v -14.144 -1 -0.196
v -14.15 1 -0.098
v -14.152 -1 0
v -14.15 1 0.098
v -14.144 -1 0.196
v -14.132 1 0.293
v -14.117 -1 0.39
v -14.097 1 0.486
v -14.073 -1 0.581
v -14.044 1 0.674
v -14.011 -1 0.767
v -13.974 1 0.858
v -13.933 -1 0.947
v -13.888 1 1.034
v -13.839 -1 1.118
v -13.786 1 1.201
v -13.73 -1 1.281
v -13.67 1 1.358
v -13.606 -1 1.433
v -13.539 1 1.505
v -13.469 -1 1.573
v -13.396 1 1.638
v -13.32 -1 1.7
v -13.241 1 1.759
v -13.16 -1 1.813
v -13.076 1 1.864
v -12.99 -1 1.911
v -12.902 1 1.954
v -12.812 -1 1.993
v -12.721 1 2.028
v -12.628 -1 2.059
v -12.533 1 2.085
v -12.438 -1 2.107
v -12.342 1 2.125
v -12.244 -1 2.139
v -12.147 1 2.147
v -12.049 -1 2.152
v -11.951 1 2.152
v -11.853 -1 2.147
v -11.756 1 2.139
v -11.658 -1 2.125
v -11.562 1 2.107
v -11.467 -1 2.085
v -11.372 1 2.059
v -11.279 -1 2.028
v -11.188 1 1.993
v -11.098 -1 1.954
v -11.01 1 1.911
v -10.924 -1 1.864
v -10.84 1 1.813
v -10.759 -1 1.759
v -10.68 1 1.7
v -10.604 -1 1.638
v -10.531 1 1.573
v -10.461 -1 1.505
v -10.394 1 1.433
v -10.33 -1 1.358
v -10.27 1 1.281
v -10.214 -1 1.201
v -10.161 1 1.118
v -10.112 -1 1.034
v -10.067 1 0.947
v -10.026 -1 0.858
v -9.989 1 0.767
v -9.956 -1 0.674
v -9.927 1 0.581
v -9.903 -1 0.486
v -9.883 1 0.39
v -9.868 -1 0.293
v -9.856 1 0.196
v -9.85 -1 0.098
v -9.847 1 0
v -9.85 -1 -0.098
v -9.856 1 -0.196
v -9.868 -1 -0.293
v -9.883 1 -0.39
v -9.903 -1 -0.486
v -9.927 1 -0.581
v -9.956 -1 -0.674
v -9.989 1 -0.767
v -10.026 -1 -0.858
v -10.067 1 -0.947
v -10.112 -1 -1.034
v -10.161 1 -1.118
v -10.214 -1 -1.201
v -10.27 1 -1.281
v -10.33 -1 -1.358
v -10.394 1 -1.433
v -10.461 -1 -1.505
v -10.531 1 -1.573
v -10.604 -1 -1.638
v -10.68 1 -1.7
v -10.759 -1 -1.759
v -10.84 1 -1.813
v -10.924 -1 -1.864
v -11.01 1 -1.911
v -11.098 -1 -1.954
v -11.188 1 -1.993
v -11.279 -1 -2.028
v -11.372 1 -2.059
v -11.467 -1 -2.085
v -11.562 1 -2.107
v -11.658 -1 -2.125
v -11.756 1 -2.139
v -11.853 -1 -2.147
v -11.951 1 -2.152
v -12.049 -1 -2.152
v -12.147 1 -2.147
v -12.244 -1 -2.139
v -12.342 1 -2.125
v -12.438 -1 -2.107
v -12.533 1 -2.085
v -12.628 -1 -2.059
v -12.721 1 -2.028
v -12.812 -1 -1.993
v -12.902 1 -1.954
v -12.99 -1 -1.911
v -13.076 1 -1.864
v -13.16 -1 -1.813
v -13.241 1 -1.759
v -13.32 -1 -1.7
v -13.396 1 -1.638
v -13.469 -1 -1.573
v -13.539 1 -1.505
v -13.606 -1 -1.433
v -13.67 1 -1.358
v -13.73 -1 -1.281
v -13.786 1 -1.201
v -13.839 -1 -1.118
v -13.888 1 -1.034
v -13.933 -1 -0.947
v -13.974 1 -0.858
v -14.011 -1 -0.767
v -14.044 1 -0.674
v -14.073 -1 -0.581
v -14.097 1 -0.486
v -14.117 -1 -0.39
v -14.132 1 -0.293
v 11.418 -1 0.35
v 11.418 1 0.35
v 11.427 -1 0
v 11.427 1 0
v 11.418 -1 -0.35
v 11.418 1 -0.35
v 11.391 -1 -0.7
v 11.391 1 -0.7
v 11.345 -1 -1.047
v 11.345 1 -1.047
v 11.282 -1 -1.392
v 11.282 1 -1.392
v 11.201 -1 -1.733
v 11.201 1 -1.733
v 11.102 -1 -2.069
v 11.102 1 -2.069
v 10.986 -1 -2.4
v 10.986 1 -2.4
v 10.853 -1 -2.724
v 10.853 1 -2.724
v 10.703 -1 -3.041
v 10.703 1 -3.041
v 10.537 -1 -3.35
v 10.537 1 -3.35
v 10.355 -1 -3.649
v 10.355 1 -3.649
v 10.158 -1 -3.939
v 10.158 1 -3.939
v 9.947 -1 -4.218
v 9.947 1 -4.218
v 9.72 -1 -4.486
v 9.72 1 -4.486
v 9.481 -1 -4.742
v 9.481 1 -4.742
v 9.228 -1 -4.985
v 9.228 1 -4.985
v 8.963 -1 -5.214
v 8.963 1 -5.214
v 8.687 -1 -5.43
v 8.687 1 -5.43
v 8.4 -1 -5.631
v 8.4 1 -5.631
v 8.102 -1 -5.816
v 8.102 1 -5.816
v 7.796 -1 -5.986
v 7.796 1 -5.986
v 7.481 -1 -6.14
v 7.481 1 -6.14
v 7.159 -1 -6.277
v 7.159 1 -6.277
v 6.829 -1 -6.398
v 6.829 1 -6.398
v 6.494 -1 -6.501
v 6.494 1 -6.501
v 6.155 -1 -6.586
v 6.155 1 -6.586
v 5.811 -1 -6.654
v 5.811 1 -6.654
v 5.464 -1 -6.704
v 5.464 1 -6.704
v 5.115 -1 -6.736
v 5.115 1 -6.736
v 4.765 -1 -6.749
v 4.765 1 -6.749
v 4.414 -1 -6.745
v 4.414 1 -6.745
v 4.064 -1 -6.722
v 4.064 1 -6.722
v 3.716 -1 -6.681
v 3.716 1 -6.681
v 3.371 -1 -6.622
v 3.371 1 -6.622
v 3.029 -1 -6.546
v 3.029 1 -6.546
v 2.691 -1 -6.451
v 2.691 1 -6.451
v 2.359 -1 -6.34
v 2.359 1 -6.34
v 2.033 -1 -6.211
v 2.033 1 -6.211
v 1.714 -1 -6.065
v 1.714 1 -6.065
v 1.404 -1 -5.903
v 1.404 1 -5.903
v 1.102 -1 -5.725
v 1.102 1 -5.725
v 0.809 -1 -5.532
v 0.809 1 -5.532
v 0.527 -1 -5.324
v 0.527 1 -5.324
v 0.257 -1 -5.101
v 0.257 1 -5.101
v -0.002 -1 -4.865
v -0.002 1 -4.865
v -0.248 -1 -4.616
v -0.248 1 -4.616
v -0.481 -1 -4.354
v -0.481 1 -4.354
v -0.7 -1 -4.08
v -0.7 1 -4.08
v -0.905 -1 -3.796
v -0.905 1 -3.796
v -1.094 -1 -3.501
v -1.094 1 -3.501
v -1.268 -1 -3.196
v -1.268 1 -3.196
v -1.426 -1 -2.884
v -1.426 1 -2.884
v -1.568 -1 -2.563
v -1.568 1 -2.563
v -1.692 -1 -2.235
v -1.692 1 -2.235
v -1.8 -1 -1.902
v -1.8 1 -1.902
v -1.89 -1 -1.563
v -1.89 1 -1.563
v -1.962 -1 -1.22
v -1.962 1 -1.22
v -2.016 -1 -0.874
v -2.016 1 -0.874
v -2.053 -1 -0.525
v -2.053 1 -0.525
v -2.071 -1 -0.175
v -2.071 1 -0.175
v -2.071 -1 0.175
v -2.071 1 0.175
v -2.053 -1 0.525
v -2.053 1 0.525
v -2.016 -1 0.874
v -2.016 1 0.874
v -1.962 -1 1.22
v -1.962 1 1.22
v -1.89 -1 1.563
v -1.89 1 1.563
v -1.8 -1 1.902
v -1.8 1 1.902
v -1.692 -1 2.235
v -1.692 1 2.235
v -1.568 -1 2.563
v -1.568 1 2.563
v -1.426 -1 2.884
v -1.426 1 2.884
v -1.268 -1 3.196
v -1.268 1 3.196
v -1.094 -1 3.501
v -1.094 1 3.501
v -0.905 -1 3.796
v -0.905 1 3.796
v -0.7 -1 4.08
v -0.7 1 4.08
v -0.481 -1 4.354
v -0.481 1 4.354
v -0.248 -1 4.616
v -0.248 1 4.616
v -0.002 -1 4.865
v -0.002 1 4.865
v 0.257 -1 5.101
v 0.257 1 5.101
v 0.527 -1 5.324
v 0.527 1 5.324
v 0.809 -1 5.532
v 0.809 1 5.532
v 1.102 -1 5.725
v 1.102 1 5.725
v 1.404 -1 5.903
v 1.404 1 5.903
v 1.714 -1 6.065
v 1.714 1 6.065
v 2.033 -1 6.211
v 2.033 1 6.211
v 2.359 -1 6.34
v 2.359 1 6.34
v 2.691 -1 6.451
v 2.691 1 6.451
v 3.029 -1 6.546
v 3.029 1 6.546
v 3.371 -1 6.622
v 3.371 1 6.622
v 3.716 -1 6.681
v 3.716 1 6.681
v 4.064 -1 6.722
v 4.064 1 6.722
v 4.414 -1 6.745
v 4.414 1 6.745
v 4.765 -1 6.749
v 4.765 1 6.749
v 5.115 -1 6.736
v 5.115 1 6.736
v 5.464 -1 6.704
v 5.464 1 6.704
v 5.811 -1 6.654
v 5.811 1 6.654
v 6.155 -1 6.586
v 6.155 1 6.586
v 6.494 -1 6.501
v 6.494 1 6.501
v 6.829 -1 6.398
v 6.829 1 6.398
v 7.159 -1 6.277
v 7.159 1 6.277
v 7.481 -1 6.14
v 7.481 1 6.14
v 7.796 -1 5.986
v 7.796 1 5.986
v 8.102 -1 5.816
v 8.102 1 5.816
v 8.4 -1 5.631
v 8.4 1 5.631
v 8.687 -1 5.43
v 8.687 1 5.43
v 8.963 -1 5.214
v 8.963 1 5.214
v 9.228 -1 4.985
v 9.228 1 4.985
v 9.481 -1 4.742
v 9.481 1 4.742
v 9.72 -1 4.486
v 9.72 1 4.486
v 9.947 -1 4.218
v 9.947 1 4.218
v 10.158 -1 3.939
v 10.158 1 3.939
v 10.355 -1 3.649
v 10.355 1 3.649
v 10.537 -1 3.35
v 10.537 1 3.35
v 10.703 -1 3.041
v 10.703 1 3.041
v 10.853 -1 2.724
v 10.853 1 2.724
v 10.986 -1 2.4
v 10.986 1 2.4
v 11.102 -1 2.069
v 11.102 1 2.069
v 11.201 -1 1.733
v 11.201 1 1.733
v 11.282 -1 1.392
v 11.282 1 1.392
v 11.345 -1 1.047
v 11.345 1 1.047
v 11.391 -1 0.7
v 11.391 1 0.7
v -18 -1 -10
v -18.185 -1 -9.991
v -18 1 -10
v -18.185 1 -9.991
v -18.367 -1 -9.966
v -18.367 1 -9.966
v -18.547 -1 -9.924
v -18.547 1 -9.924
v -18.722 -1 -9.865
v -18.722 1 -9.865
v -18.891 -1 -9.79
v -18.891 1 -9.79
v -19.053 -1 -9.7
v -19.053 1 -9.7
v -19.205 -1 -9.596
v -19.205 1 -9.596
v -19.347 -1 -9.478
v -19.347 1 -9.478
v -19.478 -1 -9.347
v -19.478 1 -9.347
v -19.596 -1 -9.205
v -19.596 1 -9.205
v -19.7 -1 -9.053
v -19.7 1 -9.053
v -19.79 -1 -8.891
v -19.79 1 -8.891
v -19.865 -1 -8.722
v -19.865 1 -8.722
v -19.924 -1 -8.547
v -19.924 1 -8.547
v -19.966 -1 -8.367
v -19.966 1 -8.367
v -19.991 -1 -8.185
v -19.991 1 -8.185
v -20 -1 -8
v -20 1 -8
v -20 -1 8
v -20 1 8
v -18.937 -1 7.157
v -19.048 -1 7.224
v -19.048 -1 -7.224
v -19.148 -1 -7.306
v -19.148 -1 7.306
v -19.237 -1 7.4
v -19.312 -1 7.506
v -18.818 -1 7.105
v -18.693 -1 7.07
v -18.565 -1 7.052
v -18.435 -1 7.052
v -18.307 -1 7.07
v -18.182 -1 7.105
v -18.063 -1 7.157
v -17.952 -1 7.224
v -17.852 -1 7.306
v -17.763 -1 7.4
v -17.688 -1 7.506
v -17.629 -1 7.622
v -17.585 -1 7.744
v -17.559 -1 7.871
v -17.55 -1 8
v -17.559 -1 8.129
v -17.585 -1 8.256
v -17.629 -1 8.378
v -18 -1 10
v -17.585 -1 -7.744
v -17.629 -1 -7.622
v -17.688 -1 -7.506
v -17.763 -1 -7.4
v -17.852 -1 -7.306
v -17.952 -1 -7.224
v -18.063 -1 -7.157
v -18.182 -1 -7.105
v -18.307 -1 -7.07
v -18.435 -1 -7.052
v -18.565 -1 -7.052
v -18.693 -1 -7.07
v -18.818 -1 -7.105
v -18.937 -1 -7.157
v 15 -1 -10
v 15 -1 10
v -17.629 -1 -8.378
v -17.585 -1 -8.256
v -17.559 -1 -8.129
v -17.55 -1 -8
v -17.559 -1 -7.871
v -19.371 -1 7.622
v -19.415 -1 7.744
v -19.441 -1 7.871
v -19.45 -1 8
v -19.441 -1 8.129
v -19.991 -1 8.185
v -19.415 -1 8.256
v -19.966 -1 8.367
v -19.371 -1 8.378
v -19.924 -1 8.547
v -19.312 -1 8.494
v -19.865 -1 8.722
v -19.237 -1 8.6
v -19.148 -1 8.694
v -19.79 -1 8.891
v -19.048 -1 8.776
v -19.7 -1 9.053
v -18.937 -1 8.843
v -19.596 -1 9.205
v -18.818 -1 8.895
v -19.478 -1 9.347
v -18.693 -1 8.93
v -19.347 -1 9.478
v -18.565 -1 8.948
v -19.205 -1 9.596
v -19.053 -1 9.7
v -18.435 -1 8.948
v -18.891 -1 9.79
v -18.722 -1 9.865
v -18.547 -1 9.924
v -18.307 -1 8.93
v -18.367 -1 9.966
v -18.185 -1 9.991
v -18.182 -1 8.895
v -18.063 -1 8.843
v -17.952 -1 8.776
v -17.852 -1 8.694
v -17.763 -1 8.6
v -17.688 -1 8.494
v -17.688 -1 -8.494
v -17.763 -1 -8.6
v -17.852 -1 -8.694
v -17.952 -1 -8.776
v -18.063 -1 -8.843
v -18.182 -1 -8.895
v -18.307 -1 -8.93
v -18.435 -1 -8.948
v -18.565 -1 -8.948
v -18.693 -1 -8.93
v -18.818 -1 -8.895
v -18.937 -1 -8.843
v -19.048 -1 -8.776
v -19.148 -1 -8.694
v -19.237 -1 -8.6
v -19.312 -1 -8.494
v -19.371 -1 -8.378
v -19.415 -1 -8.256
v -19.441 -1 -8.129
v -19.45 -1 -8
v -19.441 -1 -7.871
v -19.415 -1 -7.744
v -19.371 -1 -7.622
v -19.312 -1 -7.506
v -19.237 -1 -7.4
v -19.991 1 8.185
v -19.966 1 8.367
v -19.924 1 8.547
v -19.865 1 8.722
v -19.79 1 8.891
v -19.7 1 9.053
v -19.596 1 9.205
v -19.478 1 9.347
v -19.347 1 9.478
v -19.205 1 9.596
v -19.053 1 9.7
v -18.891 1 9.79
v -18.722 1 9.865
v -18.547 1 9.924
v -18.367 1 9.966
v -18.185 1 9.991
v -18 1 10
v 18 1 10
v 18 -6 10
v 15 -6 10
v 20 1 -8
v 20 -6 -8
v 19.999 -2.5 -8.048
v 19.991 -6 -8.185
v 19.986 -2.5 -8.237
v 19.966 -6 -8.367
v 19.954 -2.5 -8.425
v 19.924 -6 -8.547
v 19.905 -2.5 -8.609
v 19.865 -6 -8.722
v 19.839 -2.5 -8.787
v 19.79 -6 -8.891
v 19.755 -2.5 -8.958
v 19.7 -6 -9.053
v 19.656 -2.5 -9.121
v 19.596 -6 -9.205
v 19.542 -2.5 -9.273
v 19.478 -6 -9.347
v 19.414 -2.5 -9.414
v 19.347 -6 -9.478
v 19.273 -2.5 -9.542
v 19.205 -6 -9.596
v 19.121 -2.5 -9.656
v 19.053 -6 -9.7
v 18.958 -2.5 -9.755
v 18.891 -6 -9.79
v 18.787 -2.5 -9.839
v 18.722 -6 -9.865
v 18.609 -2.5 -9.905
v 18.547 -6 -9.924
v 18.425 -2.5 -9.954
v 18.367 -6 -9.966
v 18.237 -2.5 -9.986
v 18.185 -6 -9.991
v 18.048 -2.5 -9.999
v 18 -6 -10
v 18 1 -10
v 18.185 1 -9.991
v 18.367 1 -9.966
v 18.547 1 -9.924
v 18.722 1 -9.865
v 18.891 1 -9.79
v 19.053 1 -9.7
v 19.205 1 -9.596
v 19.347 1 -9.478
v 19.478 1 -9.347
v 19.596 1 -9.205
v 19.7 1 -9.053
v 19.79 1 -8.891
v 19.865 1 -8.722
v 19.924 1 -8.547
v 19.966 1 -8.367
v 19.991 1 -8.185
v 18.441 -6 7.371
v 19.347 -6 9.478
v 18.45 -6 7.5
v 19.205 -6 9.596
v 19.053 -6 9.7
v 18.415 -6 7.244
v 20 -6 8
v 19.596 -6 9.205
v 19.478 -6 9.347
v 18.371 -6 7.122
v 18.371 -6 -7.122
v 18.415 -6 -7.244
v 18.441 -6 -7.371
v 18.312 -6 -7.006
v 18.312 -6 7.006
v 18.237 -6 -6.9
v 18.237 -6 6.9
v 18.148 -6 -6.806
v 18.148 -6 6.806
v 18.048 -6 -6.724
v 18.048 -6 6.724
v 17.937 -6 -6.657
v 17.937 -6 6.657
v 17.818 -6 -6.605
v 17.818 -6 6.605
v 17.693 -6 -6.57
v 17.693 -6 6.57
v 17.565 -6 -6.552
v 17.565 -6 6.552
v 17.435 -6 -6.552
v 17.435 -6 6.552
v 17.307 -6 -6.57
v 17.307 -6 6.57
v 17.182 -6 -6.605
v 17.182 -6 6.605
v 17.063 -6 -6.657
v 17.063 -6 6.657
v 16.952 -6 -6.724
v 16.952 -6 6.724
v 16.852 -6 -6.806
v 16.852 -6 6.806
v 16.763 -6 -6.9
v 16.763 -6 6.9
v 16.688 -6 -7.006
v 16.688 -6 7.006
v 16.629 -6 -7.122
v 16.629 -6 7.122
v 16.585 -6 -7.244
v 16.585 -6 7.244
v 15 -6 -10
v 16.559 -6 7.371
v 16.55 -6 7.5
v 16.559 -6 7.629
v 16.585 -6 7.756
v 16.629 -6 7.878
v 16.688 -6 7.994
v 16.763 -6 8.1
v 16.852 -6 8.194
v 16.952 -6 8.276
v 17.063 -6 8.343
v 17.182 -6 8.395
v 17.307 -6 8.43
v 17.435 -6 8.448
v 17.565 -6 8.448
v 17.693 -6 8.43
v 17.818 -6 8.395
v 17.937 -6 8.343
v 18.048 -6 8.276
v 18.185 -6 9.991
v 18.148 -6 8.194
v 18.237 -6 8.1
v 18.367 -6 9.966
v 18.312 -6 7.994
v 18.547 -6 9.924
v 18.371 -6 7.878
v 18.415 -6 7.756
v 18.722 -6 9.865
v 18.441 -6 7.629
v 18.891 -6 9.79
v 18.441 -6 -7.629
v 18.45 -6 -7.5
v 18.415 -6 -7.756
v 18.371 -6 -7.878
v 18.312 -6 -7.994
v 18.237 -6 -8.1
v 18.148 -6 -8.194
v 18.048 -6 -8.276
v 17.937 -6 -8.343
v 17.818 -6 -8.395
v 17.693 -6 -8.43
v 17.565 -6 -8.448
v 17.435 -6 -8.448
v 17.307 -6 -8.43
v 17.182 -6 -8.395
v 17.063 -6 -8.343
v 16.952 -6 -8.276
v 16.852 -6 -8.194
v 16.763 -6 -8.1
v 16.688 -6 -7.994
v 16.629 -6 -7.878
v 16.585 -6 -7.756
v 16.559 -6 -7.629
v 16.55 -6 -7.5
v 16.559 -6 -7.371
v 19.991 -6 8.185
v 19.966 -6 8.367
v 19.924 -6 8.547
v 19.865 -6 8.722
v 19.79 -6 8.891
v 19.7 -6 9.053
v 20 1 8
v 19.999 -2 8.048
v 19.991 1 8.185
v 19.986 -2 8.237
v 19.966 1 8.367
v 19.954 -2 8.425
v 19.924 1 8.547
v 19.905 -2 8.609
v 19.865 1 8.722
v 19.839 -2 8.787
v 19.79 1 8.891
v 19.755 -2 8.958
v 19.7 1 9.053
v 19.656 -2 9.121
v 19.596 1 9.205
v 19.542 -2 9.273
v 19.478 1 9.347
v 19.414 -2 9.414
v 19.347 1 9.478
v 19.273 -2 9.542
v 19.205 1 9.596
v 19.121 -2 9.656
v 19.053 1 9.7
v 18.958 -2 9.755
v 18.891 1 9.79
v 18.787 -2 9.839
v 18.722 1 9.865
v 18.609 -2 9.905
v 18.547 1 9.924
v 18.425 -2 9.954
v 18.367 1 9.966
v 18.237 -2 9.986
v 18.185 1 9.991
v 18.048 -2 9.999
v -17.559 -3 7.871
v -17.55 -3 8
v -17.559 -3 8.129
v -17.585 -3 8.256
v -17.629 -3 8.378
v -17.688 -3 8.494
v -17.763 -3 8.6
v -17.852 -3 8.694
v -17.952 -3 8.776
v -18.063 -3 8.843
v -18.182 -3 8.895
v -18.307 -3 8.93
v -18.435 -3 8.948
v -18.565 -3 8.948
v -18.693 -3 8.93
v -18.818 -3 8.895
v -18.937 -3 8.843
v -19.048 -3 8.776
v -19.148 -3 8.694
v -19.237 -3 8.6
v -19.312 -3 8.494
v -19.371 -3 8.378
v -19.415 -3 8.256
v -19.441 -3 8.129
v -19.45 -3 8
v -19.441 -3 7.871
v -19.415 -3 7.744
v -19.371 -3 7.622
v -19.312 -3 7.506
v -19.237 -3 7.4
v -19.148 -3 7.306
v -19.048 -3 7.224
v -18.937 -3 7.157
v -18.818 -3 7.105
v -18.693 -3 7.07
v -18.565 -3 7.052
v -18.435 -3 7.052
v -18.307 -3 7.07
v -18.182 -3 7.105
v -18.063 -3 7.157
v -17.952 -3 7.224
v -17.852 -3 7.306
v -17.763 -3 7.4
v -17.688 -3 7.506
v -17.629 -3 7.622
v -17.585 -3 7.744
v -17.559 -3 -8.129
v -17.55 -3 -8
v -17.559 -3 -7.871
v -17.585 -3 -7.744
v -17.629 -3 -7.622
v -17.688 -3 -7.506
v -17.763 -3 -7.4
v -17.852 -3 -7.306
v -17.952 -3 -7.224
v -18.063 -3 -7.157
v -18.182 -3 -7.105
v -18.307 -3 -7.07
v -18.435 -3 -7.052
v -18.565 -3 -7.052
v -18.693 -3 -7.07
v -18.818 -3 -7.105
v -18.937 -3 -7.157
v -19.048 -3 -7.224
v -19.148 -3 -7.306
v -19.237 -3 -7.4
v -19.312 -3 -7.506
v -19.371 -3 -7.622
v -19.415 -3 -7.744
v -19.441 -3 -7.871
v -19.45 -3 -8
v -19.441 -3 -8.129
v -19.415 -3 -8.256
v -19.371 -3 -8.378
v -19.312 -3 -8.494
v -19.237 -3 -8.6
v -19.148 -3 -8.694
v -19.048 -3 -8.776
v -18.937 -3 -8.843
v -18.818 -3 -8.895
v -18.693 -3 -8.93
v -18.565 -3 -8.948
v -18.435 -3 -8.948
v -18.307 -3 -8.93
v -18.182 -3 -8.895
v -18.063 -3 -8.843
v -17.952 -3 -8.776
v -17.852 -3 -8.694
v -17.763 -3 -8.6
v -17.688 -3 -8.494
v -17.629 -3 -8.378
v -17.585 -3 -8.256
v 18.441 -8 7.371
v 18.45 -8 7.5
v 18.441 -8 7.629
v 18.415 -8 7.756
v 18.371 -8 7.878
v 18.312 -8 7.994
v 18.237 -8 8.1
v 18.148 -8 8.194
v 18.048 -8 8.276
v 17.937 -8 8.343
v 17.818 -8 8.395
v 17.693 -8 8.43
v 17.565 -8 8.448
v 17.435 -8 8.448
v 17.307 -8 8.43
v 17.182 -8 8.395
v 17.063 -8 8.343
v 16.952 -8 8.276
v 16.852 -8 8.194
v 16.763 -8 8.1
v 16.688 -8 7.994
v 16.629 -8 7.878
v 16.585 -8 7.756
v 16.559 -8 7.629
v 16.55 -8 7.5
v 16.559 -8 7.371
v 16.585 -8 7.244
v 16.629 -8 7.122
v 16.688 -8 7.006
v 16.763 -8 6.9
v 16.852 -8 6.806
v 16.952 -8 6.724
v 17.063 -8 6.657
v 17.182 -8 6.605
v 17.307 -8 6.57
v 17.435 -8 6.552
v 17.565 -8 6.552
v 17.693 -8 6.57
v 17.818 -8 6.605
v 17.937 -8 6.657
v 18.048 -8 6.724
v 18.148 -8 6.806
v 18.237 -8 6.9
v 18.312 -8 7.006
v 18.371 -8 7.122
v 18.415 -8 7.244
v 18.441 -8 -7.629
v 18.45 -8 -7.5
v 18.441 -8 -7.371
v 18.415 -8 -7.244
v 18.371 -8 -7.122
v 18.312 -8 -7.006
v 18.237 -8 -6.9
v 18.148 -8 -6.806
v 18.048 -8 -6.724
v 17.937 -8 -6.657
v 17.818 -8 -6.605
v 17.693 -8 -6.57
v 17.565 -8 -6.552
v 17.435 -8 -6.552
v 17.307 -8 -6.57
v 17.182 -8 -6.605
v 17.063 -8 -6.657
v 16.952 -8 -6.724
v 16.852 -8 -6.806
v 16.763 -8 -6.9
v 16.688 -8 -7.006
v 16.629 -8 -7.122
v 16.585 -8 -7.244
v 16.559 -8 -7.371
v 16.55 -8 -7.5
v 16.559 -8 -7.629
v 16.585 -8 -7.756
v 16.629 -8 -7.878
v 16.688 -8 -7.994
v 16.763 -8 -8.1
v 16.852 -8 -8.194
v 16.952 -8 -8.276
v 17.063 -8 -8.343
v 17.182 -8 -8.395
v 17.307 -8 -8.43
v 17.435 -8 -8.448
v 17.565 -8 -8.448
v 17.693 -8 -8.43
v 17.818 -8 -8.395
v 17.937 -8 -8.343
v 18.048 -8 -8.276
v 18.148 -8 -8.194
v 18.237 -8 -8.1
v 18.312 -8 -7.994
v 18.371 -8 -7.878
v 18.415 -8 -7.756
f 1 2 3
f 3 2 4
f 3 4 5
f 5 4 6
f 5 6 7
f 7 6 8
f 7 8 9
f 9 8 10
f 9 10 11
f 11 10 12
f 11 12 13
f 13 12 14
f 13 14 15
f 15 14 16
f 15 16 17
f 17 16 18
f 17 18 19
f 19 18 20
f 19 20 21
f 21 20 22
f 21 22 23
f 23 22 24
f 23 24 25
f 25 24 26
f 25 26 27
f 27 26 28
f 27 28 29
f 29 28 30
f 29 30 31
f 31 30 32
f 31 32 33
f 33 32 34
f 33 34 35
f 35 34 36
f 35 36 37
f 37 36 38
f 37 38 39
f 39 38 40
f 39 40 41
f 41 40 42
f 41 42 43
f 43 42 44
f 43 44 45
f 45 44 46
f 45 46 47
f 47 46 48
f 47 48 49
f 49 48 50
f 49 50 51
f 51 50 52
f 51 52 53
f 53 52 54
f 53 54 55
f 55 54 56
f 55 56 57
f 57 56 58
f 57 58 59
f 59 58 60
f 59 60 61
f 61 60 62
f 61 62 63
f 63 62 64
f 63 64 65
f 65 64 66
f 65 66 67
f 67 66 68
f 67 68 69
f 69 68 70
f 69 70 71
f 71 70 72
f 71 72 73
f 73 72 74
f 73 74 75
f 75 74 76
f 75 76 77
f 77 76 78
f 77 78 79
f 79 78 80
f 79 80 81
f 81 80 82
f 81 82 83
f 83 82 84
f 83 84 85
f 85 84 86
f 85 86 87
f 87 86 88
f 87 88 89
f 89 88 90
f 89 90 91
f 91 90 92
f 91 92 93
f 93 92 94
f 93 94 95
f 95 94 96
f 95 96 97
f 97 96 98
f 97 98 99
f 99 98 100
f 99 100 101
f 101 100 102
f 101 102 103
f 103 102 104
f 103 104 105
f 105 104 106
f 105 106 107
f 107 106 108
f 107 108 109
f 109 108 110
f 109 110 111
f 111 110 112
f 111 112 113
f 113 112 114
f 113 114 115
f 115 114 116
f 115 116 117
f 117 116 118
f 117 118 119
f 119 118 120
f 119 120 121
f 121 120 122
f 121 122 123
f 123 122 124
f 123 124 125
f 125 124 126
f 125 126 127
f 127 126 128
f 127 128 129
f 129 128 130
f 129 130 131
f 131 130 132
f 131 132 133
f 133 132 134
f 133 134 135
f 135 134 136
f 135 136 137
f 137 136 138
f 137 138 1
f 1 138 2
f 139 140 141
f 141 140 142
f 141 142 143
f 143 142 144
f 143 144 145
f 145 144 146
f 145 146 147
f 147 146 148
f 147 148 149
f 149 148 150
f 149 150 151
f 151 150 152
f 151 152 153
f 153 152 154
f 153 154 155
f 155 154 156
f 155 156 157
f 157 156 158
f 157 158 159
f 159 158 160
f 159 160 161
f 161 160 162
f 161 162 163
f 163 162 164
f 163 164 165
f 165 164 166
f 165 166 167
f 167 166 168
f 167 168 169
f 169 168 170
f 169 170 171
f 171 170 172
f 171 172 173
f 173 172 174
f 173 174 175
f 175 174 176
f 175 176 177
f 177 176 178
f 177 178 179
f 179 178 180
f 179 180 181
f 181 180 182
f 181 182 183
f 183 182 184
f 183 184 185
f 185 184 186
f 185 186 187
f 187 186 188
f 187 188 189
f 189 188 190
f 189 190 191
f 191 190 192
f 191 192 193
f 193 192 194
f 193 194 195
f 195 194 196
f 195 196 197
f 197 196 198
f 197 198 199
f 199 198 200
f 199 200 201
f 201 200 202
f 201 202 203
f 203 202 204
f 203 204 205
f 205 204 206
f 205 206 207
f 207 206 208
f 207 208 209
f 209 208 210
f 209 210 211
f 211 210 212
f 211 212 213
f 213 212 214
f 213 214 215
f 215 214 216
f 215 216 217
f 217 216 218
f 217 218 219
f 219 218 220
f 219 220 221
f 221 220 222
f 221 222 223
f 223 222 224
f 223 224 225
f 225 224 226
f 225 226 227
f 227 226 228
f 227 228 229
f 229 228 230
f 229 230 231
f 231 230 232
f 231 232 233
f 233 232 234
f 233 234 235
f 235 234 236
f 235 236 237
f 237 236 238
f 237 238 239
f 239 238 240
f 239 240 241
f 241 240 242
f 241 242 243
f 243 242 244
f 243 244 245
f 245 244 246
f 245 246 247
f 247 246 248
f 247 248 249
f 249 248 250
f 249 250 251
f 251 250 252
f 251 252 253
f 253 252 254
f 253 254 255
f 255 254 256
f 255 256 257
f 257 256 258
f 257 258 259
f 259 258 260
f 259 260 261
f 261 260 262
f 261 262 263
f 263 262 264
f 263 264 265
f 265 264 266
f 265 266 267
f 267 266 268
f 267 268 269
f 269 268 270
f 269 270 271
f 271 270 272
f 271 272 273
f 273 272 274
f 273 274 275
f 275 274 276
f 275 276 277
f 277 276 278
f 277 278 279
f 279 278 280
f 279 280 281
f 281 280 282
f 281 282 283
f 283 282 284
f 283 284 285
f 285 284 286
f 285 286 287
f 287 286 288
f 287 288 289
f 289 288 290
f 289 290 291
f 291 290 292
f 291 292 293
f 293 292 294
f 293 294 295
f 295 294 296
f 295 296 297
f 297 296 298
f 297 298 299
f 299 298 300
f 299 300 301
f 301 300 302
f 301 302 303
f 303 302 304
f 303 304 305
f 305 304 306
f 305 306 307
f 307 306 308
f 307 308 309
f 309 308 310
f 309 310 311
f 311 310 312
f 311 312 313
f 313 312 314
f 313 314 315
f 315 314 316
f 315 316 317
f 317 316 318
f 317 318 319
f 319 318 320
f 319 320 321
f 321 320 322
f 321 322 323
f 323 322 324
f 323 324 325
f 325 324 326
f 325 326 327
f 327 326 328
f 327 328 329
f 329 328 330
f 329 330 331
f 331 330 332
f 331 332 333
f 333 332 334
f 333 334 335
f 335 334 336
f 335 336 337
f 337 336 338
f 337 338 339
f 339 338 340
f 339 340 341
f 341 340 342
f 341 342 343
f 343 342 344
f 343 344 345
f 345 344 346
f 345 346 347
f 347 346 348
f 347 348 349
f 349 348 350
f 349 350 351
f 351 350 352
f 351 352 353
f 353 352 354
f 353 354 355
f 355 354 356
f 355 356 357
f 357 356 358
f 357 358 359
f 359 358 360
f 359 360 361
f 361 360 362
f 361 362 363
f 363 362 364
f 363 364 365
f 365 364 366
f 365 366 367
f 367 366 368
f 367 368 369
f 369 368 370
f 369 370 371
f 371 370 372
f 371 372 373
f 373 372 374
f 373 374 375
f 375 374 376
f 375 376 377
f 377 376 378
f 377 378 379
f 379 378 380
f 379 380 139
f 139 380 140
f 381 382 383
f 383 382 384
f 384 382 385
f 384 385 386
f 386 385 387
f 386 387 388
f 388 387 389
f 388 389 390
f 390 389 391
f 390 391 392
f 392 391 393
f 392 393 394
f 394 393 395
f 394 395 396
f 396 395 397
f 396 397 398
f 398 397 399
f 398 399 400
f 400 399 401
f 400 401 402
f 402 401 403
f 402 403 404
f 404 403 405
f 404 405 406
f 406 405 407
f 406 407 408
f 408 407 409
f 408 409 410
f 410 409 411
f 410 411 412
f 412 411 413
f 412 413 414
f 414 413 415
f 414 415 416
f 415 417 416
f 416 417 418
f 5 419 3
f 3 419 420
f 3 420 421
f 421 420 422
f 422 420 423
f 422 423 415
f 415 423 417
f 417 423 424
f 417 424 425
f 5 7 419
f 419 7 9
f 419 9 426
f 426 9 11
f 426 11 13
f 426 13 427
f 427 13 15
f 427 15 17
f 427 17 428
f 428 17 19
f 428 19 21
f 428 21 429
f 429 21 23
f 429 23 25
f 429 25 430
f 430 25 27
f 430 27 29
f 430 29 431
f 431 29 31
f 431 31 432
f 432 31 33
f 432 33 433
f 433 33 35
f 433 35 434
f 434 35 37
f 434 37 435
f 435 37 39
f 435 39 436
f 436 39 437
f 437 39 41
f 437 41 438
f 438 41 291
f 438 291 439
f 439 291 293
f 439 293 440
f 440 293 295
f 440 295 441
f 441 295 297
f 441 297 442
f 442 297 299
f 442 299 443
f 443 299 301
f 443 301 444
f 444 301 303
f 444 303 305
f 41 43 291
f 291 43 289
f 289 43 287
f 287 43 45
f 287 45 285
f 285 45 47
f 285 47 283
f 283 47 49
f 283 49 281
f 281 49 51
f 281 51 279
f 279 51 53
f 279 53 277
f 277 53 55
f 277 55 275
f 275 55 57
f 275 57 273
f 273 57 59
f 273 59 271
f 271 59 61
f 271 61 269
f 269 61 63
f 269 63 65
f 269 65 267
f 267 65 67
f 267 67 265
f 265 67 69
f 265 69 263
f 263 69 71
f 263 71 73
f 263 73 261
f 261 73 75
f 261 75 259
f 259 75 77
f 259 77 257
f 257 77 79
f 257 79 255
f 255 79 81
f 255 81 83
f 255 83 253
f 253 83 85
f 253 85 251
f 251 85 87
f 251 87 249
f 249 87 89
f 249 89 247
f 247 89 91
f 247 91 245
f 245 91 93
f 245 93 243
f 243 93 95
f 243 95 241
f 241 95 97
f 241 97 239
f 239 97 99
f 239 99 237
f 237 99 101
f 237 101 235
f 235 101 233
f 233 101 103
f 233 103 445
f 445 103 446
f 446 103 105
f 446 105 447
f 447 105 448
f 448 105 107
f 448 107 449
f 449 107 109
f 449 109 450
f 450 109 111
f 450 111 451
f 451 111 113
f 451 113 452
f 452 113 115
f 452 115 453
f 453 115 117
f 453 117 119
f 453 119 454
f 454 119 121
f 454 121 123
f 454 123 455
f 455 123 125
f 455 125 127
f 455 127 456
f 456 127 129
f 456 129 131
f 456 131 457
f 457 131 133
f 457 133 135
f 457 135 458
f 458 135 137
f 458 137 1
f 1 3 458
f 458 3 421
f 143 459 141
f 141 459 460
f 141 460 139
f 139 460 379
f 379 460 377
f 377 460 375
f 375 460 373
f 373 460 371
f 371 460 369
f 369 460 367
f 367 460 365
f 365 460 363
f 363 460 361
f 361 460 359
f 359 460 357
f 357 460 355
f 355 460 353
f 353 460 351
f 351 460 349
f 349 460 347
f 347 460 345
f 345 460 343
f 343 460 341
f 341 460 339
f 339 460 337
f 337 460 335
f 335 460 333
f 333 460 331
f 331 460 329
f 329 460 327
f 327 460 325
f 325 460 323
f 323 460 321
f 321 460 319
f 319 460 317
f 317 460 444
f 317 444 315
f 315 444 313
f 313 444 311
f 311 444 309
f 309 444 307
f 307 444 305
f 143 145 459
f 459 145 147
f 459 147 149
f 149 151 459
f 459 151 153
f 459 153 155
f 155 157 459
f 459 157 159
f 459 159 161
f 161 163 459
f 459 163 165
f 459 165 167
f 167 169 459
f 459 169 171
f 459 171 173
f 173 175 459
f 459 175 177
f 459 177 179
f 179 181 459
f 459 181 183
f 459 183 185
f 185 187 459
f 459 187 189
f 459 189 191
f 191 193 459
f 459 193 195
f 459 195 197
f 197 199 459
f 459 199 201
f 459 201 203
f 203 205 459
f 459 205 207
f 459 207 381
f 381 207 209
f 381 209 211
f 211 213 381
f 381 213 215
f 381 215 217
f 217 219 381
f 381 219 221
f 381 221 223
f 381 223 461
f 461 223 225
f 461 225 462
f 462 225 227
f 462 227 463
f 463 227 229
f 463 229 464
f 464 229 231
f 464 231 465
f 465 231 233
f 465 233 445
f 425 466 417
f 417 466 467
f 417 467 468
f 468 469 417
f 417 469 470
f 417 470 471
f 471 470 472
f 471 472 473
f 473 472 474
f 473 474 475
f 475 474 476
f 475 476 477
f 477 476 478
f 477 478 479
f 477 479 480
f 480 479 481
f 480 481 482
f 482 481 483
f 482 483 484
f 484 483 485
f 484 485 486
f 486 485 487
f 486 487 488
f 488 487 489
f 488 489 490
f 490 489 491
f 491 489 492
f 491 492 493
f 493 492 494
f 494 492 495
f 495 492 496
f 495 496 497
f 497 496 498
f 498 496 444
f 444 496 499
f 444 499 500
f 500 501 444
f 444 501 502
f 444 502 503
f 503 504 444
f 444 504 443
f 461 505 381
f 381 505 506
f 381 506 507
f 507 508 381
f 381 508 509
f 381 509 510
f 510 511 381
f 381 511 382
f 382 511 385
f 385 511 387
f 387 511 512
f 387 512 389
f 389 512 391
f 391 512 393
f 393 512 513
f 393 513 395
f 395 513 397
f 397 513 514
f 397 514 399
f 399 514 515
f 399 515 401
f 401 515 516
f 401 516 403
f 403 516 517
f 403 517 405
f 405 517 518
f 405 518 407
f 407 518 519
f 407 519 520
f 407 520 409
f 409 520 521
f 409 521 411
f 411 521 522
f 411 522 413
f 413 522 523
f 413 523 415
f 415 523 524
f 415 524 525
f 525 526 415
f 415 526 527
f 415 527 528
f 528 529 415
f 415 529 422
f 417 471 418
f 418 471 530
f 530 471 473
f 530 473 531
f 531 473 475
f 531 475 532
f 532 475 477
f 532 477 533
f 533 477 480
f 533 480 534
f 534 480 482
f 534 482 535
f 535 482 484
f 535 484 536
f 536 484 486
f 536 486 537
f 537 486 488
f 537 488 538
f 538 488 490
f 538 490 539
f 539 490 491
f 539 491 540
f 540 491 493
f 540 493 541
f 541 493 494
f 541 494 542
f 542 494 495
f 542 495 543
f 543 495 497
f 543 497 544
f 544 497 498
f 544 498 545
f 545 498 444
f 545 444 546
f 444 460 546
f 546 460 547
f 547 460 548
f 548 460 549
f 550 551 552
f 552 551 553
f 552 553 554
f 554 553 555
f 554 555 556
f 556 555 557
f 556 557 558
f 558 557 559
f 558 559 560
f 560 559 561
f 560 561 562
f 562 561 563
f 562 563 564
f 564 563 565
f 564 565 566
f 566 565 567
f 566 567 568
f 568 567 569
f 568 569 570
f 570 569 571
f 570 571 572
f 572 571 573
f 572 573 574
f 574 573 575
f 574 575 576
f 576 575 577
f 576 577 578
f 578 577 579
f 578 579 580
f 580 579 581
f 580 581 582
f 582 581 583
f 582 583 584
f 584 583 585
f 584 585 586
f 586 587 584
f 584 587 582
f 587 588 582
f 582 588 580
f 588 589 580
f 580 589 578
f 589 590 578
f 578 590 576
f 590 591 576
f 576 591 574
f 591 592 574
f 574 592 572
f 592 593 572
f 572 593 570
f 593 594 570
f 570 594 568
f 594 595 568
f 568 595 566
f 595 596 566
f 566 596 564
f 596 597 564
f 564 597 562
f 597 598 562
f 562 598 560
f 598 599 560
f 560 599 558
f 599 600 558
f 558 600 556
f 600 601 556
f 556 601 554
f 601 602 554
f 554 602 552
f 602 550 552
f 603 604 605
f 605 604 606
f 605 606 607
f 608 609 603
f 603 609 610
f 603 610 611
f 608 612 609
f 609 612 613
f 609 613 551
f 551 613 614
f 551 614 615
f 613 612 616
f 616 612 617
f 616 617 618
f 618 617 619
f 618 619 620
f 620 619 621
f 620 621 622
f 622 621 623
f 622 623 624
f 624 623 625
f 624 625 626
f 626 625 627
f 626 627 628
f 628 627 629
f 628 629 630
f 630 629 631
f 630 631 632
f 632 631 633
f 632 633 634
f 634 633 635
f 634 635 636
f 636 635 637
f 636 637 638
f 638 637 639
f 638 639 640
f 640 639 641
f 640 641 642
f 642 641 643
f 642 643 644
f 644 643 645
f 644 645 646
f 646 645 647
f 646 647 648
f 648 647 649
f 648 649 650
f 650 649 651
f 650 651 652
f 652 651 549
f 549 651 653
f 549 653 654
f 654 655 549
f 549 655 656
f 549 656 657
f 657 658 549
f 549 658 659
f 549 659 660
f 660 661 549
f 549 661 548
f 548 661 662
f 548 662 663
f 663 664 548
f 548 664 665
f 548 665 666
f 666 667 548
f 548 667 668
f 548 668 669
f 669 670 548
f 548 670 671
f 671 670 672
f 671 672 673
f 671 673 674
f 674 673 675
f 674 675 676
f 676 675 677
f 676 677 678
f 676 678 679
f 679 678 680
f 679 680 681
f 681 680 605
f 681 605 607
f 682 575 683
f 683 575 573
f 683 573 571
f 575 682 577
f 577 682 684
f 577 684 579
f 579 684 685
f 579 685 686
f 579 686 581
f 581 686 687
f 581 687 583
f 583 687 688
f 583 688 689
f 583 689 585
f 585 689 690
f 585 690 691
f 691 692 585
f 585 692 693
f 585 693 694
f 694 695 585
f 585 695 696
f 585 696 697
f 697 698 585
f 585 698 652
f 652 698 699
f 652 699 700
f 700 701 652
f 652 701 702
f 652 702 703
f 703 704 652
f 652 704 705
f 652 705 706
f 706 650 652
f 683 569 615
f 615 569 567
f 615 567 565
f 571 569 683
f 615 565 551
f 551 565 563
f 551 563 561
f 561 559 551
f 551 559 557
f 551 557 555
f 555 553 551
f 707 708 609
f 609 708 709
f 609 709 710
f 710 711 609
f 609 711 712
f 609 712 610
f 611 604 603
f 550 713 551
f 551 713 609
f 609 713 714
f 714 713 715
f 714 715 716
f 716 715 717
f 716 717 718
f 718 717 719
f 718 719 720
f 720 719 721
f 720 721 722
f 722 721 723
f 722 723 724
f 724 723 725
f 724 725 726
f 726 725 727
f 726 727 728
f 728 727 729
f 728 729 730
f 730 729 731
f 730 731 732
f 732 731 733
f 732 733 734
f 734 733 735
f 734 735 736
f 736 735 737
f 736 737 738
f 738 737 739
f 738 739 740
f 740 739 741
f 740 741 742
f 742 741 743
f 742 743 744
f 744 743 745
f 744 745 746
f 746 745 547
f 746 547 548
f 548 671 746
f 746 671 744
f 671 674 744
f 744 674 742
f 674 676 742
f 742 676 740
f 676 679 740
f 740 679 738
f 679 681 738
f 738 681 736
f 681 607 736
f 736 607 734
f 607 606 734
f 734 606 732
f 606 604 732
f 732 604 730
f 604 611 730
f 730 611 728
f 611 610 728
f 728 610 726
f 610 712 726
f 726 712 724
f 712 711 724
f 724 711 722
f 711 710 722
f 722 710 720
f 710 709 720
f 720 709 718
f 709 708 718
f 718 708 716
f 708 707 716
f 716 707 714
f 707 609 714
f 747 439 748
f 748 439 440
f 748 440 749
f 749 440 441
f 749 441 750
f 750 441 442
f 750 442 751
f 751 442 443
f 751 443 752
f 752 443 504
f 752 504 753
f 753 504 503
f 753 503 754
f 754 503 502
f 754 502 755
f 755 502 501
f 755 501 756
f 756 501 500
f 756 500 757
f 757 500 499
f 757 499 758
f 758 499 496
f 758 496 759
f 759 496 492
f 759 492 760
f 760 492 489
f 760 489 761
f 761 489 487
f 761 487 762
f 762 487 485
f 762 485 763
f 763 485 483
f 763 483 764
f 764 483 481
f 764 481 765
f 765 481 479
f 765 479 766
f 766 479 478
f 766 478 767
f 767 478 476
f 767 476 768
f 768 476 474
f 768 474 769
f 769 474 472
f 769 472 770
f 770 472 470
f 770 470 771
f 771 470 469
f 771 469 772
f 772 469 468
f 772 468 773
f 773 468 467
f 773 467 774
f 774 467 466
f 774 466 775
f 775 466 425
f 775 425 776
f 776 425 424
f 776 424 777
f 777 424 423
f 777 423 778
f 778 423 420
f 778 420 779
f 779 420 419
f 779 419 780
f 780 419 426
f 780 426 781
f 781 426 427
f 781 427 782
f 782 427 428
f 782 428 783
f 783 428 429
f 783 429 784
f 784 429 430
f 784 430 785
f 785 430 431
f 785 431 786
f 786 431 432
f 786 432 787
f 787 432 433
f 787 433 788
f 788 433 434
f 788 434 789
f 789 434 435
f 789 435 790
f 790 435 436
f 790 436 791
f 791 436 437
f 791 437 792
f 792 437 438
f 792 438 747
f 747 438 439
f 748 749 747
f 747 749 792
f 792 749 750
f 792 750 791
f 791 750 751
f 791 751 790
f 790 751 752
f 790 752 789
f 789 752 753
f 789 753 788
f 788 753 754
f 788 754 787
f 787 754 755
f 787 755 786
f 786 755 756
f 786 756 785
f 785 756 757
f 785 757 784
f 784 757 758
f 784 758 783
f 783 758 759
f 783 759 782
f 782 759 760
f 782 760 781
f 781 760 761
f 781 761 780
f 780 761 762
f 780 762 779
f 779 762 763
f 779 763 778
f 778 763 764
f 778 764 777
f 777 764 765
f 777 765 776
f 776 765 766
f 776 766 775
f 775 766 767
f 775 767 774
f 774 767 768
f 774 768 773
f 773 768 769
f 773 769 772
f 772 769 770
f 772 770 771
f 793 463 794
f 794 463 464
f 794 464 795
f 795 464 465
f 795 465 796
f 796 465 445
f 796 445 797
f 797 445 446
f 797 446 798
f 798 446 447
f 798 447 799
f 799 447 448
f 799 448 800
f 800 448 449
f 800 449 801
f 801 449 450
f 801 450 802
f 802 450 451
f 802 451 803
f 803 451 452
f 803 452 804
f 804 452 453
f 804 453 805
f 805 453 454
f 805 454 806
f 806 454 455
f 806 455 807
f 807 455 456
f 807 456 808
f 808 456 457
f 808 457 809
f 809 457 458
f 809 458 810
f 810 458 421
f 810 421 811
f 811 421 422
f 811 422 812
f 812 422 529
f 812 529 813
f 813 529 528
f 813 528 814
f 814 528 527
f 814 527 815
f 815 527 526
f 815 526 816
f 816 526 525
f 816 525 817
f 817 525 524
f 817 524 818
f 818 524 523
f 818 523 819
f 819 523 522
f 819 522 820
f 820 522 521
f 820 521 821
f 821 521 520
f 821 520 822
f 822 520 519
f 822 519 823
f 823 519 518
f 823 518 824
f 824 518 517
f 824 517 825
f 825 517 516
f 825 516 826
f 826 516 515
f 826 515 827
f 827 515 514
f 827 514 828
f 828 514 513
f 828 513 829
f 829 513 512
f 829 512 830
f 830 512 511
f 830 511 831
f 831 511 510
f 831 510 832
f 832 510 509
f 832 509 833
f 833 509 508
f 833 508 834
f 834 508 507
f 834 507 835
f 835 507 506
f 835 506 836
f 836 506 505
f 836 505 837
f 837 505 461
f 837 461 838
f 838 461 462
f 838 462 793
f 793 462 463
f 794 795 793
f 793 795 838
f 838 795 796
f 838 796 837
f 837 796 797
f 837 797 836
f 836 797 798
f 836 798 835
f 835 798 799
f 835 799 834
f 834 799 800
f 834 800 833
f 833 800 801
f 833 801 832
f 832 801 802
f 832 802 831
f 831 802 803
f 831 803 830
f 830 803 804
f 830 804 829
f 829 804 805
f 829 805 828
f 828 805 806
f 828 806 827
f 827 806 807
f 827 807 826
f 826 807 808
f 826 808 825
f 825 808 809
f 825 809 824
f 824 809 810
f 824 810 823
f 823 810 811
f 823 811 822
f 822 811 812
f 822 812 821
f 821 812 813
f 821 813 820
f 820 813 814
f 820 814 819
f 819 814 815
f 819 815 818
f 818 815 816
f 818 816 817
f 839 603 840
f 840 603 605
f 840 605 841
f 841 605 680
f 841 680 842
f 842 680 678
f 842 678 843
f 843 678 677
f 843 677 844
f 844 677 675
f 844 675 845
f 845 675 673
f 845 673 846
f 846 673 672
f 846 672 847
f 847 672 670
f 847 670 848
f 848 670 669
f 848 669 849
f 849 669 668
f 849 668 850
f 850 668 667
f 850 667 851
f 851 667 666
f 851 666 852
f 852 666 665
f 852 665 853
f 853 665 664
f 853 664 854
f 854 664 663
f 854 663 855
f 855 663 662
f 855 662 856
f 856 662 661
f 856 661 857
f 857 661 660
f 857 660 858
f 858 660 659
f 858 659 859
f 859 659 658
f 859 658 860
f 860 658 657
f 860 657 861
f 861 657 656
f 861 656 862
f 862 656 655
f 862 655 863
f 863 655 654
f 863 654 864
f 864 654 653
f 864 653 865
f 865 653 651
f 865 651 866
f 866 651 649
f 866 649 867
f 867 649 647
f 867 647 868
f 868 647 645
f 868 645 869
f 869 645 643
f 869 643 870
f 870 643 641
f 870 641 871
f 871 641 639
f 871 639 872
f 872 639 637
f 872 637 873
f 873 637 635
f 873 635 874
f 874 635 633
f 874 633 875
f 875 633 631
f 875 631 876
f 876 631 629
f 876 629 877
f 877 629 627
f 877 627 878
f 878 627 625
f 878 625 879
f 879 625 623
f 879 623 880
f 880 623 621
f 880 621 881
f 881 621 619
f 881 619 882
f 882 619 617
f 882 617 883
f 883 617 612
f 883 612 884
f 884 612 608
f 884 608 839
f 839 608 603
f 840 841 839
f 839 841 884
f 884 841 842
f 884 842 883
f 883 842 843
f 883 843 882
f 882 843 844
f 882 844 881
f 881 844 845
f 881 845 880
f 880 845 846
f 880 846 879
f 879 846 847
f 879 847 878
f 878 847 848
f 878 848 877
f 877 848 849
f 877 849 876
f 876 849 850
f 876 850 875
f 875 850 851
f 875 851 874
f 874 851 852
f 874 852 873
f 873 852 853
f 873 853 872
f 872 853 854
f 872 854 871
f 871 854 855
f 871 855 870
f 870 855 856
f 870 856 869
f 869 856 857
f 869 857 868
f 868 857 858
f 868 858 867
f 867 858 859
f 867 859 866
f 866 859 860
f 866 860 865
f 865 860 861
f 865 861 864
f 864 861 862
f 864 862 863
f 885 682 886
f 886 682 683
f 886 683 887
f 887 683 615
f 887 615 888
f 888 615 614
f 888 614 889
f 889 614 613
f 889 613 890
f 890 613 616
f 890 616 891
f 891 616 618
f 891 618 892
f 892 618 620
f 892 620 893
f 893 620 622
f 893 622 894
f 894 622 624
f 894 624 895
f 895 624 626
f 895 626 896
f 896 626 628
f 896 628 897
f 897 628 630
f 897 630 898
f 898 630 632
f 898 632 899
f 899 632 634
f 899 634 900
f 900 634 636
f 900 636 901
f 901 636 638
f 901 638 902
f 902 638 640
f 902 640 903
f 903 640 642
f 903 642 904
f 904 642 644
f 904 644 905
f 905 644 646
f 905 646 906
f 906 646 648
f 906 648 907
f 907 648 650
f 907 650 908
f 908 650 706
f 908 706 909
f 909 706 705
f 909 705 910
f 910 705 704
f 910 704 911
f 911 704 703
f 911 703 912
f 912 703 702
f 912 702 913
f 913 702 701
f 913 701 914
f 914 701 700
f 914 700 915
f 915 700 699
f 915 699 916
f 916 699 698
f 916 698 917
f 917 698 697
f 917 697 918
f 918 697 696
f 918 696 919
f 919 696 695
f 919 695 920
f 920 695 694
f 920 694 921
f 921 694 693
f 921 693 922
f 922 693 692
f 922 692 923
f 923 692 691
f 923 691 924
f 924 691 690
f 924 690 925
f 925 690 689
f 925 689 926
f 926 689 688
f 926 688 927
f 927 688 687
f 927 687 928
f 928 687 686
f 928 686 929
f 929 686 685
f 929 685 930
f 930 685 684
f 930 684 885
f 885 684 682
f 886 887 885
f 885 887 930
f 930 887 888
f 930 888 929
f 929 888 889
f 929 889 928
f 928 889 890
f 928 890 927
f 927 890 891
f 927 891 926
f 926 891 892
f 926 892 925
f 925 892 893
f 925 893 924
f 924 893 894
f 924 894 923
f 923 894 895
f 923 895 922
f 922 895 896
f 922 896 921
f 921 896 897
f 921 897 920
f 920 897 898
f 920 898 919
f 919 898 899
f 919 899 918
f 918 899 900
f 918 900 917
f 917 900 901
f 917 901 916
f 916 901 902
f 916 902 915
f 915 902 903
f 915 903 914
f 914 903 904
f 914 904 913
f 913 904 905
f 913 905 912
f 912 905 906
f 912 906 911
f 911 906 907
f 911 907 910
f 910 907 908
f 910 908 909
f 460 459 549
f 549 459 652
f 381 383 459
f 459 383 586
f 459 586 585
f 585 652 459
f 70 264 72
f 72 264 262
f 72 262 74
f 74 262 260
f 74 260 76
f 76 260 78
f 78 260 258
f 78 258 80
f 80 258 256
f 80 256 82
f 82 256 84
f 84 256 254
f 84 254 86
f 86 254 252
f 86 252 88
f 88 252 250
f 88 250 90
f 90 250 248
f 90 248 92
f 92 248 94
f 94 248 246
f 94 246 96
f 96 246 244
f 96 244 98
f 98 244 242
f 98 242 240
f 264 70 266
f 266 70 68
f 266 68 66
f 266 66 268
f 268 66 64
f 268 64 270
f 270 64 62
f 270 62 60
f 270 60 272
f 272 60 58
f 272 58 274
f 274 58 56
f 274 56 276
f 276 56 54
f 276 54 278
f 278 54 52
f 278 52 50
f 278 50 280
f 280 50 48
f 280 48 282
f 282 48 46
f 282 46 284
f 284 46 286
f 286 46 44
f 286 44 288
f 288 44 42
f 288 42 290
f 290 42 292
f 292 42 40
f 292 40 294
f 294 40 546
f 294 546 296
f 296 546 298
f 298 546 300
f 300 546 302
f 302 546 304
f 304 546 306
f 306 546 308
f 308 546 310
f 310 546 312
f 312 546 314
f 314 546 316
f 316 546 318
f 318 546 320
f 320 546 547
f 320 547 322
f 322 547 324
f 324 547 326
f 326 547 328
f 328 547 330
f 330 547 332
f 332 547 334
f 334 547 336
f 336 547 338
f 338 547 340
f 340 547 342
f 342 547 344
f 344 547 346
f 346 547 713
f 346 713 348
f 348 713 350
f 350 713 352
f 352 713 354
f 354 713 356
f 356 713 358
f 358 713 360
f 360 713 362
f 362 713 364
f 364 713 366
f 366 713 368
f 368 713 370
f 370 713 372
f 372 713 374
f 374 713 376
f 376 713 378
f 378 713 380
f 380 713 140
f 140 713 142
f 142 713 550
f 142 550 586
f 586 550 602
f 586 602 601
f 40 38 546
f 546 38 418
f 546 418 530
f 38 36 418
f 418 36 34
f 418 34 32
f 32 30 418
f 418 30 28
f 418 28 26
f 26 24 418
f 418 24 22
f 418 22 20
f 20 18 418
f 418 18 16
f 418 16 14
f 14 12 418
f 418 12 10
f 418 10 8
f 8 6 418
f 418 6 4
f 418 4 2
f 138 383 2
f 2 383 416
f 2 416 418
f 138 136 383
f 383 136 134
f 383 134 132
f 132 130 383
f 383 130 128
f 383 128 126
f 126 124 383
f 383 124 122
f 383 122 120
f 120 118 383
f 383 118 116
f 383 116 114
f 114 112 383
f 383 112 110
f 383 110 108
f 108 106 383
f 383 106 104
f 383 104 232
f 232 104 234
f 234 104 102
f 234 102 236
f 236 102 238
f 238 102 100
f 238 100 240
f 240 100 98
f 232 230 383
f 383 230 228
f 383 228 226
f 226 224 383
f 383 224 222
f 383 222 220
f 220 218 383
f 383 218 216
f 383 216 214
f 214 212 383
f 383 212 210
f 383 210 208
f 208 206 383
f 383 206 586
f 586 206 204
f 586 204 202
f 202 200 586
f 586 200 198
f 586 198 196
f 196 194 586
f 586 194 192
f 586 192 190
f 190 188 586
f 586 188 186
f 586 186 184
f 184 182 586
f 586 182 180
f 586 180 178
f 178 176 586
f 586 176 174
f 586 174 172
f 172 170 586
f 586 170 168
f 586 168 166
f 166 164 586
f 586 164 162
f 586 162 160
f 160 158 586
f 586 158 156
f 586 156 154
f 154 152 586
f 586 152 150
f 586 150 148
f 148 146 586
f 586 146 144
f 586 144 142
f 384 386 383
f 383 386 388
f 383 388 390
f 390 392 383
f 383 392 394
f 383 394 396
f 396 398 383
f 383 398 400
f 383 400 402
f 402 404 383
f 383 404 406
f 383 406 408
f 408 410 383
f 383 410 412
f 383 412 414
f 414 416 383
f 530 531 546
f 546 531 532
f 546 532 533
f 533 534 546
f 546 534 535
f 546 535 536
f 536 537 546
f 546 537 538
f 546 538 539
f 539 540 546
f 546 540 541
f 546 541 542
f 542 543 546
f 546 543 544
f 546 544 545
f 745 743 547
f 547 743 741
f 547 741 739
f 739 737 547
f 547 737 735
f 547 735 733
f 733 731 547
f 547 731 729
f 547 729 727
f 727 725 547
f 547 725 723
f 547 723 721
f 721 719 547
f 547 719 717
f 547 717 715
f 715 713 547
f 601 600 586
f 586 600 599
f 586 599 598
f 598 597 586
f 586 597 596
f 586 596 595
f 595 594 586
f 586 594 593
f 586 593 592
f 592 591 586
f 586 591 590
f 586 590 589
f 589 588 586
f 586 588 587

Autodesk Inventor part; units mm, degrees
ref_plane "YZ Plane" through (0, 0, 0) normal (1, 0, 0) x (0, 1, 0)
ref_plane "XZ Plane" through (0, 0, 0) normal (0, 1, 0) x (-1, 0, 0)
ref_plane "XY Plane" through (0, 0, 0) normal (0, 0, 1) x (1, 0, 0)
sketch "Sketch1" plane through (0, 0, 0) normal (0, 1, 0) x (-1, 0, 0)
  line L0 (-20, 10) -> (20, 10)
  line L1 (20, 10) -> (20, -10)
  line L2 (20, -10) -> (-20, -10)
  line L3 (-20, -10) -> (-20, 10)
  line L4 (-20, 10) -> (20, -10) construction
  line L5 (20, 10) -> (-20, -10) construction
  point P0 (0, 0)
  dimension "d2" = 40
  dimension "d3" = 20
extrude "Extrusion1" add sketch "Sketch1" along normal mid plane 2
sketch "Sketch5" plane through (0, -1, 0) normal (0, -1, 0) x (1, 0, 0)
  line L0 (20, 10) -> (15, 10)
  line L1 (15, 10) -> (15, -10)
  line L2 (15, -10) -> (20, -10)
  line L3 (20, -10) -> (20, 10)
  line L4 (20, 10) -> (-20, 10) projected
  line L5 (20, -10) -> (20, 10) projected
  line L6 (-20, -10) -> (20, -10) projected
  dimension "d25" = 5
extrude "Extrusion4" add sketch "Sketch5" along normal blind 5
sketch "Sketch4" plane through (0, -6, 0) normal (0, -1, 0) x (1, 0, 0)
  circle A0 centre (17.5, 7.5) radius 0.95
  circle A1 centre (17.5, -7.5) radius 0.95
  line L0 (20, -10) -> (20, 10) projected
  line L1 (20, 10) -> (15, 10) projected
  line L2 (15, -10) -> (20, -10) projected
  dimension "d26" = 1.9
  dimension "d27" = 1.9
  dimension "d28" = 2.5
  dimension "d29" = 2.5
  dimension "d30" = 2.5
extrude "Extrusion3" add sketch "Sketch4" along normal blind 2
sketch "Sketch6" plane through (0, -1, 0) normal (0, -1, 0) x (1, 0, 0)
  circle A0 centre (-18.5, 8) radius 0.95
  circle A1 centre (-18.5, -8) radius 0.95
  line L0 (-20, 10) -> (-20, -10) projected
  line L1 (15, 10) -> (-20, 10) projected
  line L2 (-20, -10) -> (15, -10) projected
  point P0 (0, 0)
  dimension "d31" = 1.9
  dimension "d32" = 1.9
  dimension "d33" = 1.5
  dimension "d34" = 2
  dimension "d35" = 2
extrude "Extrusion5" add sketch "Sketch6" along normal blind 2
fillet "Fillet1" radius 2 4 edges at (20, -2.5, 10) (20, -2.5, -10) (-20, 0, 10) (-20, 0, -10)
sketch "Sketch7" plane through (0, 1, 0) normal (0, 1, 0) x (1, 0, 0)
  circle A0 centre (4.677, 0) radius 3.9688 projected
  circle A1 centre (4.677, 0) radius 6.75
  point P0 (0, 0)
  dimension "d38" = 13.5
extrude "Extrusion6" cut sketch "Sketch7" against normal through all contours A0 | A1
sketch "Sketch8" plane through (0, 1, 0) normal (0, 1, 0) x (1, 0, 0)
  circle A0 centre (-12, 0) radius 2.1525 projected
  point P0 (0, 0)
hole "Hole1" at (-12, 1, 0) direction (0, -1, 0) diameter 4.305 end through all clearance for "Flat Head Machine Screw (82)" size "#6" standard "Ansi Unified Screw Threads"
equation "\"d27\" = d26"
equation "\"d29\" = d28"
equation "\"d30\" = d29"
equation "\"d32\" = d31"
equation "\"d35\" = d34"
properties part number "GearCover"
